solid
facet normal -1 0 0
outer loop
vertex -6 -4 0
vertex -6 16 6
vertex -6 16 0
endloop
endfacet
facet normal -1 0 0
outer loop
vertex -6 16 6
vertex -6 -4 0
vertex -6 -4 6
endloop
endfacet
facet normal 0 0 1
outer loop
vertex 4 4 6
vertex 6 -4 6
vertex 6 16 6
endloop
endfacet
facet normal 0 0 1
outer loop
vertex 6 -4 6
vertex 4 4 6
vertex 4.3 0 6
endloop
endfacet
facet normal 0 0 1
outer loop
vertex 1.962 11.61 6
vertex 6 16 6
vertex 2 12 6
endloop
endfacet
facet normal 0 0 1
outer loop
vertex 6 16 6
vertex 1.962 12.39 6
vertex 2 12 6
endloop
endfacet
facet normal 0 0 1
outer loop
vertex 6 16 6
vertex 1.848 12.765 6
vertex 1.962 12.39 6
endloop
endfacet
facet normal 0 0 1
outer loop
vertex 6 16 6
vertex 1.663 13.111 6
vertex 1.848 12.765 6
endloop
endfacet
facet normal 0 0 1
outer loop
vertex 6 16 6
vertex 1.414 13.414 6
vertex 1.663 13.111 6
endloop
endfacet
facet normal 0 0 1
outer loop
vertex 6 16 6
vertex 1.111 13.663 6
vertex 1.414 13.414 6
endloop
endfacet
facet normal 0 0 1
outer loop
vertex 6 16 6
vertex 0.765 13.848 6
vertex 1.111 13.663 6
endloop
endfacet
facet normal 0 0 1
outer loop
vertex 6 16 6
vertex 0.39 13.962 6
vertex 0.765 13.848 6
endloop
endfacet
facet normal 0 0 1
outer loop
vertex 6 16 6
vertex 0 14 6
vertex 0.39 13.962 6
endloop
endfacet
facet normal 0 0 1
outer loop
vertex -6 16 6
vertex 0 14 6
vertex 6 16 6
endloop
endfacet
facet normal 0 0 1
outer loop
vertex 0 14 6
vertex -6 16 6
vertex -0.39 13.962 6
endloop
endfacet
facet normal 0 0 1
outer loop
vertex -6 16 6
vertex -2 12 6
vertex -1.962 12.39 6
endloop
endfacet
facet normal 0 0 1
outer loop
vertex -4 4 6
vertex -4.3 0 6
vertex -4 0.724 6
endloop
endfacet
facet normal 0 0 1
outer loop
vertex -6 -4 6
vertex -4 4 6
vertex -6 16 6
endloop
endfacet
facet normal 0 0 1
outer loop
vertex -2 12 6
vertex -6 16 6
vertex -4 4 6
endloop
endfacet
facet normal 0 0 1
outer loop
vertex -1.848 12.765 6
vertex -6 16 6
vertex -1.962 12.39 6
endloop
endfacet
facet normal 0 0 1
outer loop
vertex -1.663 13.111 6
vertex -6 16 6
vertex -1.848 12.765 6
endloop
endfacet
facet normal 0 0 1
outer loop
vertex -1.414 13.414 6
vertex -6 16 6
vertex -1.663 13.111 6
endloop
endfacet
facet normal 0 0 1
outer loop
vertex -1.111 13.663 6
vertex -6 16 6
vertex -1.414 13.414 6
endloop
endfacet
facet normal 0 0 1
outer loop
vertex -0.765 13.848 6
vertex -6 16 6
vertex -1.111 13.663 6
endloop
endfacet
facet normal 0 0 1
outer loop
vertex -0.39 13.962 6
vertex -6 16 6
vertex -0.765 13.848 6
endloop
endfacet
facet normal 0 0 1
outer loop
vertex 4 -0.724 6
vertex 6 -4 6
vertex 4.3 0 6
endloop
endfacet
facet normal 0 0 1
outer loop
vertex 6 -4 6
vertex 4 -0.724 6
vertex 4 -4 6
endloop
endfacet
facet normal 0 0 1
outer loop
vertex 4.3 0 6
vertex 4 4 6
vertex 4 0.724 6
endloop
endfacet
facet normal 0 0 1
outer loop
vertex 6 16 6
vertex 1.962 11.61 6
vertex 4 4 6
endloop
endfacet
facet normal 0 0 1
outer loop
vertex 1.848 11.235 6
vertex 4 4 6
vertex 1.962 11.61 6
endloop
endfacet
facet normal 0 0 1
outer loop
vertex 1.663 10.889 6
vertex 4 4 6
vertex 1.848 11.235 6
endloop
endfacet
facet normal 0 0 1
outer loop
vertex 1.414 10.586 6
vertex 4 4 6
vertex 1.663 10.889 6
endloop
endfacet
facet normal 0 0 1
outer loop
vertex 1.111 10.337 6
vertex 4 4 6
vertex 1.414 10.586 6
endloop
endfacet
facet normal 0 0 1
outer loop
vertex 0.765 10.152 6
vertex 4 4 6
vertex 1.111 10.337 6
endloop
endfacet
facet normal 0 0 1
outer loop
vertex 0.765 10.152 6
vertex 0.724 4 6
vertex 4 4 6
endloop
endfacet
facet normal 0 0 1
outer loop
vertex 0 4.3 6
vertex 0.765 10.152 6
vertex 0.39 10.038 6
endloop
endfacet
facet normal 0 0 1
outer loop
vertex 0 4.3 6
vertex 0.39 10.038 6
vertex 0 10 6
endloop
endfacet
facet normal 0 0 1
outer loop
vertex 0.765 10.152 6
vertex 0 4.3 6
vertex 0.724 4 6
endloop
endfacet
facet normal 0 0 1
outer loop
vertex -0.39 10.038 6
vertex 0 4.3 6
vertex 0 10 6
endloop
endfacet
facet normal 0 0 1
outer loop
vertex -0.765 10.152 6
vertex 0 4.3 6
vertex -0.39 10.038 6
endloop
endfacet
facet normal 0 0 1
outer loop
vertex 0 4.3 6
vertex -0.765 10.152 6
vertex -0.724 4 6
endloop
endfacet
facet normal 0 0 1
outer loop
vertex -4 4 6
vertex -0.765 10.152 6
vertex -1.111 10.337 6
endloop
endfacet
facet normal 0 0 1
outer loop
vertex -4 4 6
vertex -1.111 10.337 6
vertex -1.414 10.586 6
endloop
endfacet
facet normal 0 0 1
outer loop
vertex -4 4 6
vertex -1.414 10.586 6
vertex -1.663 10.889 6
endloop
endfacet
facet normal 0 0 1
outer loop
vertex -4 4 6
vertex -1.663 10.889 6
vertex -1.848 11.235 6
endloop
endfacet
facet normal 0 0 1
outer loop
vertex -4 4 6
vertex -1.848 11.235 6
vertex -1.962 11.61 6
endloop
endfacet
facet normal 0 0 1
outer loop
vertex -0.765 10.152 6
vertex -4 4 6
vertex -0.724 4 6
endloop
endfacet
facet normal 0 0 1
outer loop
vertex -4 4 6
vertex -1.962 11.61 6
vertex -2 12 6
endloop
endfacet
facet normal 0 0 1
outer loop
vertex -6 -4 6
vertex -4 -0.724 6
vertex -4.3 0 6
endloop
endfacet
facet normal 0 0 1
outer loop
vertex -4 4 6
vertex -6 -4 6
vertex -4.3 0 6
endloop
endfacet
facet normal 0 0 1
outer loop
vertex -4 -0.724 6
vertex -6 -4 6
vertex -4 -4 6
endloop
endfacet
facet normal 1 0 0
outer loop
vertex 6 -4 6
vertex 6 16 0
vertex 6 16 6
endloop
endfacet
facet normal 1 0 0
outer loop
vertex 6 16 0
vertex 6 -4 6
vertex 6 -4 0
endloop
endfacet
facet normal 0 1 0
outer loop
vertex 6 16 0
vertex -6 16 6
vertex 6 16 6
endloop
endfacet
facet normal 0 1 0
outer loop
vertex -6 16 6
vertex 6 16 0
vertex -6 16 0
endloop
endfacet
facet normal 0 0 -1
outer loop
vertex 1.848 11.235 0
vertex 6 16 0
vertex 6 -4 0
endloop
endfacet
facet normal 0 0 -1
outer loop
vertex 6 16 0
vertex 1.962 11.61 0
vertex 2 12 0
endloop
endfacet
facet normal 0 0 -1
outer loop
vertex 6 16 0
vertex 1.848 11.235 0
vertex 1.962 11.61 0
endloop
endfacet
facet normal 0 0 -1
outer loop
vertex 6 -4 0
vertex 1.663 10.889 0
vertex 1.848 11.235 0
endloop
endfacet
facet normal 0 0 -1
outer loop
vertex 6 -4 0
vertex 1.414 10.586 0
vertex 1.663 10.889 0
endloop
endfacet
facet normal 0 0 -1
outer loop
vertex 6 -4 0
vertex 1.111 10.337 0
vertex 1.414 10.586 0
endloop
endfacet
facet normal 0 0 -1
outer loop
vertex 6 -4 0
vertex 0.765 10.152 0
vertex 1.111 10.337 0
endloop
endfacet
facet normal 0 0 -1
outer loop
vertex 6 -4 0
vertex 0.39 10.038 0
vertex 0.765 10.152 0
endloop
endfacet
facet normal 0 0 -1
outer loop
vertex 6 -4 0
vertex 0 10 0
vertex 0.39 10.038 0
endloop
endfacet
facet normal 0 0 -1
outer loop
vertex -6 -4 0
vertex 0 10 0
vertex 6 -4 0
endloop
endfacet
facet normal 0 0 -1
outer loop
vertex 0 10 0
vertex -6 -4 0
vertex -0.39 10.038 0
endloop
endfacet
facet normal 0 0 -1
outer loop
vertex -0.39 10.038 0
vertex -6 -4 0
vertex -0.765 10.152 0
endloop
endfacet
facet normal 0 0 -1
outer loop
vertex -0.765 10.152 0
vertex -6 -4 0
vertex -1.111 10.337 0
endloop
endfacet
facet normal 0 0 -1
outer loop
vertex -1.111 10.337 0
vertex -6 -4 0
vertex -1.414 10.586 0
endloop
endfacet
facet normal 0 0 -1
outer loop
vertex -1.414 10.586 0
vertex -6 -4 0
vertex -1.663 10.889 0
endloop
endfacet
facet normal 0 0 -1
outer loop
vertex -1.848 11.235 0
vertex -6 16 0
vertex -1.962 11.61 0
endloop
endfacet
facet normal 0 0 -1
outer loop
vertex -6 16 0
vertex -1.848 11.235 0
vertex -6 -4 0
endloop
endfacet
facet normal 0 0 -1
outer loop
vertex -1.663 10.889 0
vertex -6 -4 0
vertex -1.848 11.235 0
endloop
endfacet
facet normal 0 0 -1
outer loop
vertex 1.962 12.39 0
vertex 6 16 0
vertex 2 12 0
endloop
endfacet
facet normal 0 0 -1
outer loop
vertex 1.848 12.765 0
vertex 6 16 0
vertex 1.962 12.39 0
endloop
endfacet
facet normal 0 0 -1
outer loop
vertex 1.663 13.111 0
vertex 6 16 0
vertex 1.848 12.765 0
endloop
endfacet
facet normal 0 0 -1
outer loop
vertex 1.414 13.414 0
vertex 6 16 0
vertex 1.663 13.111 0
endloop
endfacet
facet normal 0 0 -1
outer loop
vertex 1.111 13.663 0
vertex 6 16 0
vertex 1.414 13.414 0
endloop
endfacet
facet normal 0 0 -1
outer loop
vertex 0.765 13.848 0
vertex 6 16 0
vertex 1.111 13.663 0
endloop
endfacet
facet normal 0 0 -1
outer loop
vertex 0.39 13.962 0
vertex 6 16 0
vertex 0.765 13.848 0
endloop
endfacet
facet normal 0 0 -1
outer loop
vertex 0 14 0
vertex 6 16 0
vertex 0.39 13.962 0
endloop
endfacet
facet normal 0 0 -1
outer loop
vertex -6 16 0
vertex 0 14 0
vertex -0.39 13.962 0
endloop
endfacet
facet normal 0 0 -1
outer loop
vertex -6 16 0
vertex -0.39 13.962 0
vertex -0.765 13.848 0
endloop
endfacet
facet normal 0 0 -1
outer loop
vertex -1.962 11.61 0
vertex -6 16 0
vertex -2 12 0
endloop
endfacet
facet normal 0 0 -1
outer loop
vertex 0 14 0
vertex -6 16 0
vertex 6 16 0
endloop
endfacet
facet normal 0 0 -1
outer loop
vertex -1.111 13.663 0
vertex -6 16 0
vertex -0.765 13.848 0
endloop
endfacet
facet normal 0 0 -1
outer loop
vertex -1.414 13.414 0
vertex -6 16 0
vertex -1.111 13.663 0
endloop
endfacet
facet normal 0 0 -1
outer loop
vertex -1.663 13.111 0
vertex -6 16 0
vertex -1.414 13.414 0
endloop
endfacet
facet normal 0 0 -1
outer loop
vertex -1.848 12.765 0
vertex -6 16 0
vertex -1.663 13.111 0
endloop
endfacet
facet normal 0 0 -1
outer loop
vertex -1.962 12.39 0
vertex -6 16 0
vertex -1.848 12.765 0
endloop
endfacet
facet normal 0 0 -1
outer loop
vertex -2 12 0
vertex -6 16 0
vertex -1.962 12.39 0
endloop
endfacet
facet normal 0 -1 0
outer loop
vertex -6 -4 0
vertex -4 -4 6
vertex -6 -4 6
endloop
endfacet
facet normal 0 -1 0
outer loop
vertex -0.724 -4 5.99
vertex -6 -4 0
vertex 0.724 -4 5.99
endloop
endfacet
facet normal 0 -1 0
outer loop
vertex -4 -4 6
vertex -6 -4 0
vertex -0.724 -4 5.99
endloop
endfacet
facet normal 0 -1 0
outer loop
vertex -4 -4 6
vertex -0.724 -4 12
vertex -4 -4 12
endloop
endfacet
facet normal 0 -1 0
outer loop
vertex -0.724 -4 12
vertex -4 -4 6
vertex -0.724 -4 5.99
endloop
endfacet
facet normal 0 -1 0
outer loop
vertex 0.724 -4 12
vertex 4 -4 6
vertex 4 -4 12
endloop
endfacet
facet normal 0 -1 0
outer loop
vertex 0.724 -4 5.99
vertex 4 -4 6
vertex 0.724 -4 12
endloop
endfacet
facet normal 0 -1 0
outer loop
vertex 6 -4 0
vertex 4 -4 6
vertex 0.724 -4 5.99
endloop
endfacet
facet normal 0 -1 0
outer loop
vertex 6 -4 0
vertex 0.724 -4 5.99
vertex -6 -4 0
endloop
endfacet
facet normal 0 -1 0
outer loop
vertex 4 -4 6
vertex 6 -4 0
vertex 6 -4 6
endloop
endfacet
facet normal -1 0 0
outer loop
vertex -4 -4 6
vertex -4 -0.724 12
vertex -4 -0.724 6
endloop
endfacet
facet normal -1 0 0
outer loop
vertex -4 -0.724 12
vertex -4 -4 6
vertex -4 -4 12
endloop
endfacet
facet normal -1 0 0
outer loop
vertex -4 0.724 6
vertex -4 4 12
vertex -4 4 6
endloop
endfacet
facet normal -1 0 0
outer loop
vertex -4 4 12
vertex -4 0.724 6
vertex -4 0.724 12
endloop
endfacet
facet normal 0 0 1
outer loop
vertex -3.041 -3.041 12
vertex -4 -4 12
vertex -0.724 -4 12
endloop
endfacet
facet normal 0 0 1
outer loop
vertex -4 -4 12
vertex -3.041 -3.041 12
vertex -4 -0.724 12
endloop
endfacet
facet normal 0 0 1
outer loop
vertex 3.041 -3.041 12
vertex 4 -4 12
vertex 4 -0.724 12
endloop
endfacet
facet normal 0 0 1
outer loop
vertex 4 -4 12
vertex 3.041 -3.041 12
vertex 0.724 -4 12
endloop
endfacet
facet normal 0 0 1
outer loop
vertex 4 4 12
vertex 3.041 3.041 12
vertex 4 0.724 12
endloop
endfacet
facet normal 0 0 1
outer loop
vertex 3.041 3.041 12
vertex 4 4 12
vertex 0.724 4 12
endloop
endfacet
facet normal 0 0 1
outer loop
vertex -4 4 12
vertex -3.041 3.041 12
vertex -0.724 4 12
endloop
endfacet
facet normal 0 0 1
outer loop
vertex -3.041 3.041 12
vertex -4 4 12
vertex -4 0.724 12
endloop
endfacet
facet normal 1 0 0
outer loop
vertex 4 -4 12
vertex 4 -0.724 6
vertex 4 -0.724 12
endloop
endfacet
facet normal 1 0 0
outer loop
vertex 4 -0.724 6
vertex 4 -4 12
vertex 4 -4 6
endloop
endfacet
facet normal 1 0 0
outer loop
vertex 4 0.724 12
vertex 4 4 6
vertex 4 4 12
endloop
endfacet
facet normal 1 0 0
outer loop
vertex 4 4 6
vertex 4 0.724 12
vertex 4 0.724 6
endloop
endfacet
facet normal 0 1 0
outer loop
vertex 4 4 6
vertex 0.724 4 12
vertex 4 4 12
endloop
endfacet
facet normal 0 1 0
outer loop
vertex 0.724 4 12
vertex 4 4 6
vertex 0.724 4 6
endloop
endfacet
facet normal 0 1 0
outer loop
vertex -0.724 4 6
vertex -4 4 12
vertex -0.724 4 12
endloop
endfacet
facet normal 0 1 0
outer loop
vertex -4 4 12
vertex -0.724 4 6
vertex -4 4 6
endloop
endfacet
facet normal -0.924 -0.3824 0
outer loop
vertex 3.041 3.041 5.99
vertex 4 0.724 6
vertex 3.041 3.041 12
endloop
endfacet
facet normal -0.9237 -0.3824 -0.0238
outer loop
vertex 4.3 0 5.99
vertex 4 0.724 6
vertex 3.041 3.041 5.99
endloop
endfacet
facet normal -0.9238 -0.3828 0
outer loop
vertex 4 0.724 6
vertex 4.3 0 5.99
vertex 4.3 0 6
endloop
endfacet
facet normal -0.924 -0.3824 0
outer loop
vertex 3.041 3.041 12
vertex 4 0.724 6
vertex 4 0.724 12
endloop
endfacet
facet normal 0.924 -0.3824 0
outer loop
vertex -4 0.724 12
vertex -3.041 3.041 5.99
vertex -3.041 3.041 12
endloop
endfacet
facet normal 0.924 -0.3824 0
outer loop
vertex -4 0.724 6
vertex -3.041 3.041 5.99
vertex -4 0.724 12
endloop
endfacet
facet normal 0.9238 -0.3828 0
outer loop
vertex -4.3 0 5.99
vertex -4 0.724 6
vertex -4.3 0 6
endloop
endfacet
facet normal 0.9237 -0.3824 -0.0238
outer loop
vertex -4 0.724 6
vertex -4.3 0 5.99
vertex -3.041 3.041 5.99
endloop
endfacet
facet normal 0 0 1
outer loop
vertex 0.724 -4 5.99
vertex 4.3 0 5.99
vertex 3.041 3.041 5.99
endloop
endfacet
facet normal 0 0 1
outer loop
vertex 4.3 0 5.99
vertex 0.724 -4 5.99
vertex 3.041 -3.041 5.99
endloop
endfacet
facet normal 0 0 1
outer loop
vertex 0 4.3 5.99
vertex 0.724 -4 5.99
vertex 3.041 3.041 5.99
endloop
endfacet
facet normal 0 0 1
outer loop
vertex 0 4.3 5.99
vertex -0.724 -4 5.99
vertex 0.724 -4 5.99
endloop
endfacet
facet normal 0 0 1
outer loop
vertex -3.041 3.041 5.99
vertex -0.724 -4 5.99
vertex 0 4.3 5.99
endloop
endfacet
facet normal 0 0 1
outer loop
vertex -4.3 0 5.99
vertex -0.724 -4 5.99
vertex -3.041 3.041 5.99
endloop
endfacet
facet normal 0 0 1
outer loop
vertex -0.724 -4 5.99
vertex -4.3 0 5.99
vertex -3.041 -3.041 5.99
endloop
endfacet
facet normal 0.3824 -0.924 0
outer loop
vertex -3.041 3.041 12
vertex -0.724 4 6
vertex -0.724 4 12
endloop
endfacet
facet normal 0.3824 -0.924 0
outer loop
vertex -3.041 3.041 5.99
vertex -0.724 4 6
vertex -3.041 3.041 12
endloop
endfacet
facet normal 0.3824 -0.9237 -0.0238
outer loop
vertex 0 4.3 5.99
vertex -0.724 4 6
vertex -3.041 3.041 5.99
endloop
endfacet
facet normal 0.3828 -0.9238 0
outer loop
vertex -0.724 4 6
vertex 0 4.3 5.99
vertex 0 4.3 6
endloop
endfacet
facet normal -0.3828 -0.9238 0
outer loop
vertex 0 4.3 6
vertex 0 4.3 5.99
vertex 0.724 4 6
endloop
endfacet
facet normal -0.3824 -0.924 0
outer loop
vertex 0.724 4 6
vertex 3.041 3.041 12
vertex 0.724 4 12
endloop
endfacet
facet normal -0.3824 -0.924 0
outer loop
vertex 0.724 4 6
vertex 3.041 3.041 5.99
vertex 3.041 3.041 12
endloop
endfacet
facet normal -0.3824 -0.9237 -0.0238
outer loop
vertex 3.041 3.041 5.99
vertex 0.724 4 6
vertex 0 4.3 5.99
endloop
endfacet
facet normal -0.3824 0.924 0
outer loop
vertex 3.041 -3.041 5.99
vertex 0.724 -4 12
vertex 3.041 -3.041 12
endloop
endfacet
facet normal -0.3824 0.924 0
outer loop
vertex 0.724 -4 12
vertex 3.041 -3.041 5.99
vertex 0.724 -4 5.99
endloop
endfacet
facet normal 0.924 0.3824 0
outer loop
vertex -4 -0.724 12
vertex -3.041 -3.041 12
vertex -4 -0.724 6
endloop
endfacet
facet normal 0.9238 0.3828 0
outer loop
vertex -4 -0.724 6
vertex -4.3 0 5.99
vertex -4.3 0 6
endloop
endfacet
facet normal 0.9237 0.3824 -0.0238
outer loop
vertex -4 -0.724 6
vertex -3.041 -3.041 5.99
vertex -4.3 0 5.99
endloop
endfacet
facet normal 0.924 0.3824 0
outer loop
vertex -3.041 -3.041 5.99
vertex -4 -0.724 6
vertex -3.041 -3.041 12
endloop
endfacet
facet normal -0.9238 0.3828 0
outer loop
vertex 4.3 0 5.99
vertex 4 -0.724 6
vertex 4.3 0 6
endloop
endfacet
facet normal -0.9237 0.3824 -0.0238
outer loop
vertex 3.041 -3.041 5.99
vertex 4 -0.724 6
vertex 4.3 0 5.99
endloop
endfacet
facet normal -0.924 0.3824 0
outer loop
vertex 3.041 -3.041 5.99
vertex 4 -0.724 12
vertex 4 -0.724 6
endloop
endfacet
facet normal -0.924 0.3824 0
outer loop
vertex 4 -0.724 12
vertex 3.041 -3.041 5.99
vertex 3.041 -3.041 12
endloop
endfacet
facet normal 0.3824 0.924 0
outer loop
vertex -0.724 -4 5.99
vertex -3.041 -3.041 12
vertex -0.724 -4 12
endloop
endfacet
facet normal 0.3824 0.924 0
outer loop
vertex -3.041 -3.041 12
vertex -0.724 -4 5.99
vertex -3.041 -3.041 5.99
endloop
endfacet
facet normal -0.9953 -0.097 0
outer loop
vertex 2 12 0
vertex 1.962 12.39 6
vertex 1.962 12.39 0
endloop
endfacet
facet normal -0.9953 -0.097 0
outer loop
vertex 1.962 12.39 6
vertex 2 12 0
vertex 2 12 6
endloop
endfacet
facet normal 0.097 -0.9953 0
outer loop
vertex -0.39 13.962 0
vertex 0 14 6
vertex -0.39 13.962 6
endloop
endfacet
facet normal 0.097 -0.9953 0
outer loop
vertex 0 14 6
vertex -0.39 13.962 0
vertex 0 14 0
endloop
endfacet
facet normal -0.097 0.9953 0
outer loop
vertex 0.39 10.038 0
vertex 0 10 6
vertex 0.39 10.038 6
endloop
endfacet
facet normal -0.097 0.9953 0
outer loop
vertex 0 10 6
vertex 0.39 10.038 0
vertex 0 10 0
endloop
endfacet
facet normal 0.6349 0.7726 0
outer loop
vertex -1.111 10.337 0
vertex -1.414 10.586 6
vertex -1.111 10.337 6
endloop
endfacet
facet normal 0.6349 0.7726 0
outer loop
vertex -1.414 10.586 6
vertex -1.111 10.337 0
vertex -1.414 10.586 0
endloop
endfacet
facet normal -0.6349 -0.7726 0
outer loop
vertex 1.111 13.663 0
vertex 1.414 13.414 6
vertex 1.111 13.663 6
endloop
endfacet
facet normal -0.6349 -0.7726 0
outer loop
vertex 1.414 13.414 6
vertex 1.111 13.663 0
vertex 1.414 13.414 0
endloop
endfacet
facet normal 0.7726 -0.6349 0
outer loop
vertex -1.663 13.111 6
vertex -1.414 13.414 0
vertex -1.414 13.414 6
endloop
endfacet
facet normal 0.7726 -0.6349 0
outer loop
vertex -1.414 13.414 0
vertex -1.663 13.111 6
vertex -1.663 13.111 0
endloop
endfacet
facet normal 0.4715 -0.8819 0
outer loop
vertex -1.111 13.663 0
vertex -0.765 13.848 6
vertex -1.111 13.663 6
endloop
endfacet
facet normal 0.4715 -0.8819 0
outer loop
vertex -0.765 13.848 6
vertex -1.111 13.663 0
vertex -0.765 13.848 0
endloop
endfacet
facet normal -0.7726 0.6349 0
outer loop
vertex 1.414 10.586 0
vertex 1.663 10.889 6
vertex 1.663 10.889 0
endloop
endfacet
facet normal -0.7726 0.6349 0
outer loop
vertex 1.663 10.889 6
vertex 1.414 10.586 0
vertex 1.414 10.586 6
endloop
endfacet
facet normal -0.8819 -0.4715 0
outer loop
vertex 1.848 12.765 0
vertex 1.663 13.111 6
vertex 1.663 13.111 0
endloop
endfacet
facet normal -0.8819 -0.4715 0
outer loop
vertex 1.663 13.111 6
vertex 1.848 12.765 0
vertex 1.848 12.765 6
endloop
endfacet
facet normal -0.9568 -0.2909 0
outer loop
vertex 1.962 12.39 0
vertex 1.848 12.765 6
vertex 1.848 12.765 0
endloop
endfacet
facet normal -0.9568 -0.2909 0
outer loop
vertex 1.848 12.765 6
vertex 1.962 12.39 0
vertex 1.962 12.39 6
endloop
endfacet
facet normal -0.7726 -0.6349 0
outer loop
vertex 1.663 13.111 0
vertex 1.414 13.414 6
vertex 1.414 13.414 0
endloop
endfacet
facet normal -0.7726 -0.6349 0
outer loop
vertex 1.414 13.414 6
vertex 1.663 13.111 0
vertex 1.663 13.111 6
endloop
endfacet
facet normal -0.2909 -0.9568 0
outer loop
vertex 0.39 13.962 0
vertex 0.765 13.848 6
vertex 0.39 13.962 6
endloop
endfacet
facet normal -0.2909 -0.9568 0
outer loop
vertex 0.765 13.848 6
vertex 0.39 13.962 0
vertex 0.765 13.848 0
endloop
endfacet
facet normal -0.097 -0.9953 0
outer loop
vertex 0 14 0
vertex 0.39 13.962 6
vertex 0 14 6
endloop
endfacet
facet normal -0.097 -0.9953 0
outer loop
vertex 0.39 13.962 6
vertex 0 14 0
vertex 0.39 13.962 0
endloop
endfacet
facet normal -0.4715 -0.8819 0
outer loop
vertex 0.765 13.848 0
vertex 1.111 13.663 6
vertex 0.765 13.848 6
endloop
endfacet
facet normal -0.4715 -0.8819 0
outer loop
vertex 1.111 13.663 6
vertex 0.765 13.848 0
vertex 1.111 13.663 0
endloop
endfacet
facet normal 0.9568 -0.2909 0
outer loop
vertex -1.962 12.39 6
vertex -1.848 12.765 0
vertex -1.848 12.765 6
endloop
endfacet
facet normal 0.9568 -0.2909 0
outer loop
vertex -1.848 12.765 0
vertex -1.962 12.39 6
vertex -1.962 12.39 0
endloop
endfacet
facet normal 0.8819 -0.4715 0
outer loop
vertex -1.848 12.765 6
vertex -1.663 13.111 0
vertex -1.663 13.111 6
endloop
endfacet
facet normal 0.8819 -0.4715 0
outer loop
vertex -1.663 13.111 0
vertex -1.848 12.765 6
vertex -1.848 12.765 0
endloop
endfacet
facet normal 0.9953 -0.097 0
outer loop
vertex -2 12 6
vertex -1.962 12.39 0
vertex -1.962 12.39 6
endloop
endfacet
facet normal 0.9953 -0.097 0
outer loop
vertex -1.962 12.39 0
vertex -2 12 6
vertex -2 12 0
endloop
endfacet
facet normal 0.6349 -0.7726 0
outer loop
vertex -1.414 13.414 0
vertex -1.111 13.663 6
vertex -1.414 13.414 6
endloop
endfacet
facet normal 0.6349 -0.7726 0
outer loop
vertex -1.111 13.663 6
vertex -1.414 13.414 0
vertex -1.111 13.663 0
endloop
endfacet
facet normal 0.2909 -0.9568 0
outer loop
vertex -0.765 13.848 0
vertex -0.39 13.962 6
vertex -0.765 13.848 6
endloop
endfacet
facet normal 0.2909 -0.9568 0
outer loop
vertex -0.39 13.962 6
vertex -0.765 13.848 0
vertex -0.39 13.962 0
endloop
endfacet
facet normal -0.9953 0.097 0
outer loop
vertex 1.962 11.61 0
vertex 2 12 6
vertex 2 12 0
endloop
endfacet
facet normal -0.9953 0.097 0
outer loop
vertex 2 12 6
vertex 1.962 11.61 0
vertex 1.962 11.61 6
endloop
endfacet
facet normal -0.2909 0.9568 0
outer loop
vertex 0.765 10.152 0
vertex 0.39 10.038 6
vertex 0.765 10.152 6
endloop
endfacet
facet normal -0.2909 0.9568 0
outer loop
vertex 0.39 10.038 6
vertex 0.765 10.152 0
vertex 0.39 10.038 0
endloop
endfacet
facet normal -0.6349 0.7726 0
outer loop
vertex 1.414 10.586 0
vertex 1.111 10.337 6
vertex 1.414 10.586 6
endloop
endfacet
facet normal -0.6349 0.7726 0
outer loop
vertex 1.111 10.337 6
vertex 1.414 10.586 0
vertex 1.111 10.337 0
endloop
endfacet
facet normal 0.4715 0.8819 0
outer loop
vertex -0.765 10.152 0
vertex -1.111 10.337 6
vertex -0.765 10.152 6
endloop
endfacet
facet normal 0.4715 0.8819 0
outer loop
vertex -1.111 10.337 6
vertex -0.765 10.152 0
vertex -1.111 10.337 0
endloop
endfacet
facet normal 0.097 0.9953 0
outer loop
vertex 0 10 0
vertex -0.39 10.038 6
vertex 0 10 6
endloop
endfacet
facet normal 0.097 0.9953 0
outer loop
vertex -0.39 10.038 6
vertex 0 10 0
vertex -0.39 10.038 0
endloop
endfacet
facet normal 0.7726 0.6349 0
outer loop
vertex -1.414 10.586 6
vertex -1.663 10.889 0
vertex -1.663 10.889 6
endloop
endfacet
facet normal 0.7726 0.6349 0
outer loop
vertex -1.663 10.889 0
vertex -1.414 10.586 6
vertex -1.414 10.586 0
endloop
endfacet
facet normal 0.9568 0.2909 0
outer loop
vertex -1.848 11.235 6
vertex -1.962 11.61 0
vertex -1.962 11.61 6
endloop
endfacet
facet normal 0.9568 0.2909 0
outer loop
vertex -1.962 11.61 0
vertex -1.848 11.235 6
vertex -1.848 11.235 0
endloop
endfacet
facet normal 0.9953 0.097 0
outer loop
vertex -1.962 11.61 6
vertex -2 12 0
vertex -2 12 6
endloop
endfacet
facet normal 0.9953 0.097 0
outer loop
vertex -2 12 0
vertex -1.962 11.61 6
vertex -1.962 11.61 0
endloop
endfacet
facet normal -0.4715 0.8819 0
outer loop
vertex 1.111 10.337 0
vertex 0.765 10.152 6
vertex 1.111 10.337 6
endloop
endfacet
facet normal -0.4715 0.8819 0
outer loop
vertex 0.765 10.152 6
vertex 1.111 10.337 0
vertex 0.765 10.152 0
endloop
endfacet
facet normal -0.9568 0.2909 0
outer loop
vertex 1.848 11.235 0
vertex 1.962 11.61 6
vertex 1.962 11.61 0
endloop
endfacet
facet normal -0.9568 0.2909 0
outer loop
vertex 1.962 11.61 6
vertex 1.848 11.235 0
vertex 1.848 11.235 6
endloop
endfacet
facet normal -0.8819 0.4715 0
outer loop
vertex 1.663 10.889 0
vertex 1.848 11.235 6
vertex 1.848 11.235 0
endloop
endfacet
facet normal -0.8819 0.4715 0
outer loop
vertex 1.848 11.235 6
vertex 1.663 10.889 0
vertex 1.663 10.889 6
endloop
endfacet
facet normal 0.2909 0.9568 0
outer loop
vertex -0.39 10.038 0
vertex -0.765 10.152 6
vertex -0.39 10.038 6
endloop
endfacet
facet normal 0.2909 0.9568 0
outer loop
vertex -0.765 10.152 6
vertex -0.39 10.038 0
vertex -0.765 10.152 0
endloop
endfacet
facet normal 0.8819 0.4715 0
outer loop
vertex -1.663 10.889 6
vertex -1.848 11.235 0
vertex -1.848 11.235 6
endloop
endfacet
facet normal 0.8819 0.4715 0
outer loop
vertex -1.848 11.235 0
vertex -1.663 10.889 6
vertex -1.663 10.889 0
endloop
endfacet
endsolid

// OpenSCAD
/* http://www.thingiverse.com/thing:859960 */

difference() {
    union() {
        translate([-6, -4, 0]) cube([12, 20, 6]);
        translate([-4, -4, 1]) cube([8, 8, 11]);
    }
    translate([0,0,5.99]) cylinder(r=4.3, h=100, $fn=8);
    translate([0, 12, -1]) cylinder(r=2, h=100, $fn=32);
}
